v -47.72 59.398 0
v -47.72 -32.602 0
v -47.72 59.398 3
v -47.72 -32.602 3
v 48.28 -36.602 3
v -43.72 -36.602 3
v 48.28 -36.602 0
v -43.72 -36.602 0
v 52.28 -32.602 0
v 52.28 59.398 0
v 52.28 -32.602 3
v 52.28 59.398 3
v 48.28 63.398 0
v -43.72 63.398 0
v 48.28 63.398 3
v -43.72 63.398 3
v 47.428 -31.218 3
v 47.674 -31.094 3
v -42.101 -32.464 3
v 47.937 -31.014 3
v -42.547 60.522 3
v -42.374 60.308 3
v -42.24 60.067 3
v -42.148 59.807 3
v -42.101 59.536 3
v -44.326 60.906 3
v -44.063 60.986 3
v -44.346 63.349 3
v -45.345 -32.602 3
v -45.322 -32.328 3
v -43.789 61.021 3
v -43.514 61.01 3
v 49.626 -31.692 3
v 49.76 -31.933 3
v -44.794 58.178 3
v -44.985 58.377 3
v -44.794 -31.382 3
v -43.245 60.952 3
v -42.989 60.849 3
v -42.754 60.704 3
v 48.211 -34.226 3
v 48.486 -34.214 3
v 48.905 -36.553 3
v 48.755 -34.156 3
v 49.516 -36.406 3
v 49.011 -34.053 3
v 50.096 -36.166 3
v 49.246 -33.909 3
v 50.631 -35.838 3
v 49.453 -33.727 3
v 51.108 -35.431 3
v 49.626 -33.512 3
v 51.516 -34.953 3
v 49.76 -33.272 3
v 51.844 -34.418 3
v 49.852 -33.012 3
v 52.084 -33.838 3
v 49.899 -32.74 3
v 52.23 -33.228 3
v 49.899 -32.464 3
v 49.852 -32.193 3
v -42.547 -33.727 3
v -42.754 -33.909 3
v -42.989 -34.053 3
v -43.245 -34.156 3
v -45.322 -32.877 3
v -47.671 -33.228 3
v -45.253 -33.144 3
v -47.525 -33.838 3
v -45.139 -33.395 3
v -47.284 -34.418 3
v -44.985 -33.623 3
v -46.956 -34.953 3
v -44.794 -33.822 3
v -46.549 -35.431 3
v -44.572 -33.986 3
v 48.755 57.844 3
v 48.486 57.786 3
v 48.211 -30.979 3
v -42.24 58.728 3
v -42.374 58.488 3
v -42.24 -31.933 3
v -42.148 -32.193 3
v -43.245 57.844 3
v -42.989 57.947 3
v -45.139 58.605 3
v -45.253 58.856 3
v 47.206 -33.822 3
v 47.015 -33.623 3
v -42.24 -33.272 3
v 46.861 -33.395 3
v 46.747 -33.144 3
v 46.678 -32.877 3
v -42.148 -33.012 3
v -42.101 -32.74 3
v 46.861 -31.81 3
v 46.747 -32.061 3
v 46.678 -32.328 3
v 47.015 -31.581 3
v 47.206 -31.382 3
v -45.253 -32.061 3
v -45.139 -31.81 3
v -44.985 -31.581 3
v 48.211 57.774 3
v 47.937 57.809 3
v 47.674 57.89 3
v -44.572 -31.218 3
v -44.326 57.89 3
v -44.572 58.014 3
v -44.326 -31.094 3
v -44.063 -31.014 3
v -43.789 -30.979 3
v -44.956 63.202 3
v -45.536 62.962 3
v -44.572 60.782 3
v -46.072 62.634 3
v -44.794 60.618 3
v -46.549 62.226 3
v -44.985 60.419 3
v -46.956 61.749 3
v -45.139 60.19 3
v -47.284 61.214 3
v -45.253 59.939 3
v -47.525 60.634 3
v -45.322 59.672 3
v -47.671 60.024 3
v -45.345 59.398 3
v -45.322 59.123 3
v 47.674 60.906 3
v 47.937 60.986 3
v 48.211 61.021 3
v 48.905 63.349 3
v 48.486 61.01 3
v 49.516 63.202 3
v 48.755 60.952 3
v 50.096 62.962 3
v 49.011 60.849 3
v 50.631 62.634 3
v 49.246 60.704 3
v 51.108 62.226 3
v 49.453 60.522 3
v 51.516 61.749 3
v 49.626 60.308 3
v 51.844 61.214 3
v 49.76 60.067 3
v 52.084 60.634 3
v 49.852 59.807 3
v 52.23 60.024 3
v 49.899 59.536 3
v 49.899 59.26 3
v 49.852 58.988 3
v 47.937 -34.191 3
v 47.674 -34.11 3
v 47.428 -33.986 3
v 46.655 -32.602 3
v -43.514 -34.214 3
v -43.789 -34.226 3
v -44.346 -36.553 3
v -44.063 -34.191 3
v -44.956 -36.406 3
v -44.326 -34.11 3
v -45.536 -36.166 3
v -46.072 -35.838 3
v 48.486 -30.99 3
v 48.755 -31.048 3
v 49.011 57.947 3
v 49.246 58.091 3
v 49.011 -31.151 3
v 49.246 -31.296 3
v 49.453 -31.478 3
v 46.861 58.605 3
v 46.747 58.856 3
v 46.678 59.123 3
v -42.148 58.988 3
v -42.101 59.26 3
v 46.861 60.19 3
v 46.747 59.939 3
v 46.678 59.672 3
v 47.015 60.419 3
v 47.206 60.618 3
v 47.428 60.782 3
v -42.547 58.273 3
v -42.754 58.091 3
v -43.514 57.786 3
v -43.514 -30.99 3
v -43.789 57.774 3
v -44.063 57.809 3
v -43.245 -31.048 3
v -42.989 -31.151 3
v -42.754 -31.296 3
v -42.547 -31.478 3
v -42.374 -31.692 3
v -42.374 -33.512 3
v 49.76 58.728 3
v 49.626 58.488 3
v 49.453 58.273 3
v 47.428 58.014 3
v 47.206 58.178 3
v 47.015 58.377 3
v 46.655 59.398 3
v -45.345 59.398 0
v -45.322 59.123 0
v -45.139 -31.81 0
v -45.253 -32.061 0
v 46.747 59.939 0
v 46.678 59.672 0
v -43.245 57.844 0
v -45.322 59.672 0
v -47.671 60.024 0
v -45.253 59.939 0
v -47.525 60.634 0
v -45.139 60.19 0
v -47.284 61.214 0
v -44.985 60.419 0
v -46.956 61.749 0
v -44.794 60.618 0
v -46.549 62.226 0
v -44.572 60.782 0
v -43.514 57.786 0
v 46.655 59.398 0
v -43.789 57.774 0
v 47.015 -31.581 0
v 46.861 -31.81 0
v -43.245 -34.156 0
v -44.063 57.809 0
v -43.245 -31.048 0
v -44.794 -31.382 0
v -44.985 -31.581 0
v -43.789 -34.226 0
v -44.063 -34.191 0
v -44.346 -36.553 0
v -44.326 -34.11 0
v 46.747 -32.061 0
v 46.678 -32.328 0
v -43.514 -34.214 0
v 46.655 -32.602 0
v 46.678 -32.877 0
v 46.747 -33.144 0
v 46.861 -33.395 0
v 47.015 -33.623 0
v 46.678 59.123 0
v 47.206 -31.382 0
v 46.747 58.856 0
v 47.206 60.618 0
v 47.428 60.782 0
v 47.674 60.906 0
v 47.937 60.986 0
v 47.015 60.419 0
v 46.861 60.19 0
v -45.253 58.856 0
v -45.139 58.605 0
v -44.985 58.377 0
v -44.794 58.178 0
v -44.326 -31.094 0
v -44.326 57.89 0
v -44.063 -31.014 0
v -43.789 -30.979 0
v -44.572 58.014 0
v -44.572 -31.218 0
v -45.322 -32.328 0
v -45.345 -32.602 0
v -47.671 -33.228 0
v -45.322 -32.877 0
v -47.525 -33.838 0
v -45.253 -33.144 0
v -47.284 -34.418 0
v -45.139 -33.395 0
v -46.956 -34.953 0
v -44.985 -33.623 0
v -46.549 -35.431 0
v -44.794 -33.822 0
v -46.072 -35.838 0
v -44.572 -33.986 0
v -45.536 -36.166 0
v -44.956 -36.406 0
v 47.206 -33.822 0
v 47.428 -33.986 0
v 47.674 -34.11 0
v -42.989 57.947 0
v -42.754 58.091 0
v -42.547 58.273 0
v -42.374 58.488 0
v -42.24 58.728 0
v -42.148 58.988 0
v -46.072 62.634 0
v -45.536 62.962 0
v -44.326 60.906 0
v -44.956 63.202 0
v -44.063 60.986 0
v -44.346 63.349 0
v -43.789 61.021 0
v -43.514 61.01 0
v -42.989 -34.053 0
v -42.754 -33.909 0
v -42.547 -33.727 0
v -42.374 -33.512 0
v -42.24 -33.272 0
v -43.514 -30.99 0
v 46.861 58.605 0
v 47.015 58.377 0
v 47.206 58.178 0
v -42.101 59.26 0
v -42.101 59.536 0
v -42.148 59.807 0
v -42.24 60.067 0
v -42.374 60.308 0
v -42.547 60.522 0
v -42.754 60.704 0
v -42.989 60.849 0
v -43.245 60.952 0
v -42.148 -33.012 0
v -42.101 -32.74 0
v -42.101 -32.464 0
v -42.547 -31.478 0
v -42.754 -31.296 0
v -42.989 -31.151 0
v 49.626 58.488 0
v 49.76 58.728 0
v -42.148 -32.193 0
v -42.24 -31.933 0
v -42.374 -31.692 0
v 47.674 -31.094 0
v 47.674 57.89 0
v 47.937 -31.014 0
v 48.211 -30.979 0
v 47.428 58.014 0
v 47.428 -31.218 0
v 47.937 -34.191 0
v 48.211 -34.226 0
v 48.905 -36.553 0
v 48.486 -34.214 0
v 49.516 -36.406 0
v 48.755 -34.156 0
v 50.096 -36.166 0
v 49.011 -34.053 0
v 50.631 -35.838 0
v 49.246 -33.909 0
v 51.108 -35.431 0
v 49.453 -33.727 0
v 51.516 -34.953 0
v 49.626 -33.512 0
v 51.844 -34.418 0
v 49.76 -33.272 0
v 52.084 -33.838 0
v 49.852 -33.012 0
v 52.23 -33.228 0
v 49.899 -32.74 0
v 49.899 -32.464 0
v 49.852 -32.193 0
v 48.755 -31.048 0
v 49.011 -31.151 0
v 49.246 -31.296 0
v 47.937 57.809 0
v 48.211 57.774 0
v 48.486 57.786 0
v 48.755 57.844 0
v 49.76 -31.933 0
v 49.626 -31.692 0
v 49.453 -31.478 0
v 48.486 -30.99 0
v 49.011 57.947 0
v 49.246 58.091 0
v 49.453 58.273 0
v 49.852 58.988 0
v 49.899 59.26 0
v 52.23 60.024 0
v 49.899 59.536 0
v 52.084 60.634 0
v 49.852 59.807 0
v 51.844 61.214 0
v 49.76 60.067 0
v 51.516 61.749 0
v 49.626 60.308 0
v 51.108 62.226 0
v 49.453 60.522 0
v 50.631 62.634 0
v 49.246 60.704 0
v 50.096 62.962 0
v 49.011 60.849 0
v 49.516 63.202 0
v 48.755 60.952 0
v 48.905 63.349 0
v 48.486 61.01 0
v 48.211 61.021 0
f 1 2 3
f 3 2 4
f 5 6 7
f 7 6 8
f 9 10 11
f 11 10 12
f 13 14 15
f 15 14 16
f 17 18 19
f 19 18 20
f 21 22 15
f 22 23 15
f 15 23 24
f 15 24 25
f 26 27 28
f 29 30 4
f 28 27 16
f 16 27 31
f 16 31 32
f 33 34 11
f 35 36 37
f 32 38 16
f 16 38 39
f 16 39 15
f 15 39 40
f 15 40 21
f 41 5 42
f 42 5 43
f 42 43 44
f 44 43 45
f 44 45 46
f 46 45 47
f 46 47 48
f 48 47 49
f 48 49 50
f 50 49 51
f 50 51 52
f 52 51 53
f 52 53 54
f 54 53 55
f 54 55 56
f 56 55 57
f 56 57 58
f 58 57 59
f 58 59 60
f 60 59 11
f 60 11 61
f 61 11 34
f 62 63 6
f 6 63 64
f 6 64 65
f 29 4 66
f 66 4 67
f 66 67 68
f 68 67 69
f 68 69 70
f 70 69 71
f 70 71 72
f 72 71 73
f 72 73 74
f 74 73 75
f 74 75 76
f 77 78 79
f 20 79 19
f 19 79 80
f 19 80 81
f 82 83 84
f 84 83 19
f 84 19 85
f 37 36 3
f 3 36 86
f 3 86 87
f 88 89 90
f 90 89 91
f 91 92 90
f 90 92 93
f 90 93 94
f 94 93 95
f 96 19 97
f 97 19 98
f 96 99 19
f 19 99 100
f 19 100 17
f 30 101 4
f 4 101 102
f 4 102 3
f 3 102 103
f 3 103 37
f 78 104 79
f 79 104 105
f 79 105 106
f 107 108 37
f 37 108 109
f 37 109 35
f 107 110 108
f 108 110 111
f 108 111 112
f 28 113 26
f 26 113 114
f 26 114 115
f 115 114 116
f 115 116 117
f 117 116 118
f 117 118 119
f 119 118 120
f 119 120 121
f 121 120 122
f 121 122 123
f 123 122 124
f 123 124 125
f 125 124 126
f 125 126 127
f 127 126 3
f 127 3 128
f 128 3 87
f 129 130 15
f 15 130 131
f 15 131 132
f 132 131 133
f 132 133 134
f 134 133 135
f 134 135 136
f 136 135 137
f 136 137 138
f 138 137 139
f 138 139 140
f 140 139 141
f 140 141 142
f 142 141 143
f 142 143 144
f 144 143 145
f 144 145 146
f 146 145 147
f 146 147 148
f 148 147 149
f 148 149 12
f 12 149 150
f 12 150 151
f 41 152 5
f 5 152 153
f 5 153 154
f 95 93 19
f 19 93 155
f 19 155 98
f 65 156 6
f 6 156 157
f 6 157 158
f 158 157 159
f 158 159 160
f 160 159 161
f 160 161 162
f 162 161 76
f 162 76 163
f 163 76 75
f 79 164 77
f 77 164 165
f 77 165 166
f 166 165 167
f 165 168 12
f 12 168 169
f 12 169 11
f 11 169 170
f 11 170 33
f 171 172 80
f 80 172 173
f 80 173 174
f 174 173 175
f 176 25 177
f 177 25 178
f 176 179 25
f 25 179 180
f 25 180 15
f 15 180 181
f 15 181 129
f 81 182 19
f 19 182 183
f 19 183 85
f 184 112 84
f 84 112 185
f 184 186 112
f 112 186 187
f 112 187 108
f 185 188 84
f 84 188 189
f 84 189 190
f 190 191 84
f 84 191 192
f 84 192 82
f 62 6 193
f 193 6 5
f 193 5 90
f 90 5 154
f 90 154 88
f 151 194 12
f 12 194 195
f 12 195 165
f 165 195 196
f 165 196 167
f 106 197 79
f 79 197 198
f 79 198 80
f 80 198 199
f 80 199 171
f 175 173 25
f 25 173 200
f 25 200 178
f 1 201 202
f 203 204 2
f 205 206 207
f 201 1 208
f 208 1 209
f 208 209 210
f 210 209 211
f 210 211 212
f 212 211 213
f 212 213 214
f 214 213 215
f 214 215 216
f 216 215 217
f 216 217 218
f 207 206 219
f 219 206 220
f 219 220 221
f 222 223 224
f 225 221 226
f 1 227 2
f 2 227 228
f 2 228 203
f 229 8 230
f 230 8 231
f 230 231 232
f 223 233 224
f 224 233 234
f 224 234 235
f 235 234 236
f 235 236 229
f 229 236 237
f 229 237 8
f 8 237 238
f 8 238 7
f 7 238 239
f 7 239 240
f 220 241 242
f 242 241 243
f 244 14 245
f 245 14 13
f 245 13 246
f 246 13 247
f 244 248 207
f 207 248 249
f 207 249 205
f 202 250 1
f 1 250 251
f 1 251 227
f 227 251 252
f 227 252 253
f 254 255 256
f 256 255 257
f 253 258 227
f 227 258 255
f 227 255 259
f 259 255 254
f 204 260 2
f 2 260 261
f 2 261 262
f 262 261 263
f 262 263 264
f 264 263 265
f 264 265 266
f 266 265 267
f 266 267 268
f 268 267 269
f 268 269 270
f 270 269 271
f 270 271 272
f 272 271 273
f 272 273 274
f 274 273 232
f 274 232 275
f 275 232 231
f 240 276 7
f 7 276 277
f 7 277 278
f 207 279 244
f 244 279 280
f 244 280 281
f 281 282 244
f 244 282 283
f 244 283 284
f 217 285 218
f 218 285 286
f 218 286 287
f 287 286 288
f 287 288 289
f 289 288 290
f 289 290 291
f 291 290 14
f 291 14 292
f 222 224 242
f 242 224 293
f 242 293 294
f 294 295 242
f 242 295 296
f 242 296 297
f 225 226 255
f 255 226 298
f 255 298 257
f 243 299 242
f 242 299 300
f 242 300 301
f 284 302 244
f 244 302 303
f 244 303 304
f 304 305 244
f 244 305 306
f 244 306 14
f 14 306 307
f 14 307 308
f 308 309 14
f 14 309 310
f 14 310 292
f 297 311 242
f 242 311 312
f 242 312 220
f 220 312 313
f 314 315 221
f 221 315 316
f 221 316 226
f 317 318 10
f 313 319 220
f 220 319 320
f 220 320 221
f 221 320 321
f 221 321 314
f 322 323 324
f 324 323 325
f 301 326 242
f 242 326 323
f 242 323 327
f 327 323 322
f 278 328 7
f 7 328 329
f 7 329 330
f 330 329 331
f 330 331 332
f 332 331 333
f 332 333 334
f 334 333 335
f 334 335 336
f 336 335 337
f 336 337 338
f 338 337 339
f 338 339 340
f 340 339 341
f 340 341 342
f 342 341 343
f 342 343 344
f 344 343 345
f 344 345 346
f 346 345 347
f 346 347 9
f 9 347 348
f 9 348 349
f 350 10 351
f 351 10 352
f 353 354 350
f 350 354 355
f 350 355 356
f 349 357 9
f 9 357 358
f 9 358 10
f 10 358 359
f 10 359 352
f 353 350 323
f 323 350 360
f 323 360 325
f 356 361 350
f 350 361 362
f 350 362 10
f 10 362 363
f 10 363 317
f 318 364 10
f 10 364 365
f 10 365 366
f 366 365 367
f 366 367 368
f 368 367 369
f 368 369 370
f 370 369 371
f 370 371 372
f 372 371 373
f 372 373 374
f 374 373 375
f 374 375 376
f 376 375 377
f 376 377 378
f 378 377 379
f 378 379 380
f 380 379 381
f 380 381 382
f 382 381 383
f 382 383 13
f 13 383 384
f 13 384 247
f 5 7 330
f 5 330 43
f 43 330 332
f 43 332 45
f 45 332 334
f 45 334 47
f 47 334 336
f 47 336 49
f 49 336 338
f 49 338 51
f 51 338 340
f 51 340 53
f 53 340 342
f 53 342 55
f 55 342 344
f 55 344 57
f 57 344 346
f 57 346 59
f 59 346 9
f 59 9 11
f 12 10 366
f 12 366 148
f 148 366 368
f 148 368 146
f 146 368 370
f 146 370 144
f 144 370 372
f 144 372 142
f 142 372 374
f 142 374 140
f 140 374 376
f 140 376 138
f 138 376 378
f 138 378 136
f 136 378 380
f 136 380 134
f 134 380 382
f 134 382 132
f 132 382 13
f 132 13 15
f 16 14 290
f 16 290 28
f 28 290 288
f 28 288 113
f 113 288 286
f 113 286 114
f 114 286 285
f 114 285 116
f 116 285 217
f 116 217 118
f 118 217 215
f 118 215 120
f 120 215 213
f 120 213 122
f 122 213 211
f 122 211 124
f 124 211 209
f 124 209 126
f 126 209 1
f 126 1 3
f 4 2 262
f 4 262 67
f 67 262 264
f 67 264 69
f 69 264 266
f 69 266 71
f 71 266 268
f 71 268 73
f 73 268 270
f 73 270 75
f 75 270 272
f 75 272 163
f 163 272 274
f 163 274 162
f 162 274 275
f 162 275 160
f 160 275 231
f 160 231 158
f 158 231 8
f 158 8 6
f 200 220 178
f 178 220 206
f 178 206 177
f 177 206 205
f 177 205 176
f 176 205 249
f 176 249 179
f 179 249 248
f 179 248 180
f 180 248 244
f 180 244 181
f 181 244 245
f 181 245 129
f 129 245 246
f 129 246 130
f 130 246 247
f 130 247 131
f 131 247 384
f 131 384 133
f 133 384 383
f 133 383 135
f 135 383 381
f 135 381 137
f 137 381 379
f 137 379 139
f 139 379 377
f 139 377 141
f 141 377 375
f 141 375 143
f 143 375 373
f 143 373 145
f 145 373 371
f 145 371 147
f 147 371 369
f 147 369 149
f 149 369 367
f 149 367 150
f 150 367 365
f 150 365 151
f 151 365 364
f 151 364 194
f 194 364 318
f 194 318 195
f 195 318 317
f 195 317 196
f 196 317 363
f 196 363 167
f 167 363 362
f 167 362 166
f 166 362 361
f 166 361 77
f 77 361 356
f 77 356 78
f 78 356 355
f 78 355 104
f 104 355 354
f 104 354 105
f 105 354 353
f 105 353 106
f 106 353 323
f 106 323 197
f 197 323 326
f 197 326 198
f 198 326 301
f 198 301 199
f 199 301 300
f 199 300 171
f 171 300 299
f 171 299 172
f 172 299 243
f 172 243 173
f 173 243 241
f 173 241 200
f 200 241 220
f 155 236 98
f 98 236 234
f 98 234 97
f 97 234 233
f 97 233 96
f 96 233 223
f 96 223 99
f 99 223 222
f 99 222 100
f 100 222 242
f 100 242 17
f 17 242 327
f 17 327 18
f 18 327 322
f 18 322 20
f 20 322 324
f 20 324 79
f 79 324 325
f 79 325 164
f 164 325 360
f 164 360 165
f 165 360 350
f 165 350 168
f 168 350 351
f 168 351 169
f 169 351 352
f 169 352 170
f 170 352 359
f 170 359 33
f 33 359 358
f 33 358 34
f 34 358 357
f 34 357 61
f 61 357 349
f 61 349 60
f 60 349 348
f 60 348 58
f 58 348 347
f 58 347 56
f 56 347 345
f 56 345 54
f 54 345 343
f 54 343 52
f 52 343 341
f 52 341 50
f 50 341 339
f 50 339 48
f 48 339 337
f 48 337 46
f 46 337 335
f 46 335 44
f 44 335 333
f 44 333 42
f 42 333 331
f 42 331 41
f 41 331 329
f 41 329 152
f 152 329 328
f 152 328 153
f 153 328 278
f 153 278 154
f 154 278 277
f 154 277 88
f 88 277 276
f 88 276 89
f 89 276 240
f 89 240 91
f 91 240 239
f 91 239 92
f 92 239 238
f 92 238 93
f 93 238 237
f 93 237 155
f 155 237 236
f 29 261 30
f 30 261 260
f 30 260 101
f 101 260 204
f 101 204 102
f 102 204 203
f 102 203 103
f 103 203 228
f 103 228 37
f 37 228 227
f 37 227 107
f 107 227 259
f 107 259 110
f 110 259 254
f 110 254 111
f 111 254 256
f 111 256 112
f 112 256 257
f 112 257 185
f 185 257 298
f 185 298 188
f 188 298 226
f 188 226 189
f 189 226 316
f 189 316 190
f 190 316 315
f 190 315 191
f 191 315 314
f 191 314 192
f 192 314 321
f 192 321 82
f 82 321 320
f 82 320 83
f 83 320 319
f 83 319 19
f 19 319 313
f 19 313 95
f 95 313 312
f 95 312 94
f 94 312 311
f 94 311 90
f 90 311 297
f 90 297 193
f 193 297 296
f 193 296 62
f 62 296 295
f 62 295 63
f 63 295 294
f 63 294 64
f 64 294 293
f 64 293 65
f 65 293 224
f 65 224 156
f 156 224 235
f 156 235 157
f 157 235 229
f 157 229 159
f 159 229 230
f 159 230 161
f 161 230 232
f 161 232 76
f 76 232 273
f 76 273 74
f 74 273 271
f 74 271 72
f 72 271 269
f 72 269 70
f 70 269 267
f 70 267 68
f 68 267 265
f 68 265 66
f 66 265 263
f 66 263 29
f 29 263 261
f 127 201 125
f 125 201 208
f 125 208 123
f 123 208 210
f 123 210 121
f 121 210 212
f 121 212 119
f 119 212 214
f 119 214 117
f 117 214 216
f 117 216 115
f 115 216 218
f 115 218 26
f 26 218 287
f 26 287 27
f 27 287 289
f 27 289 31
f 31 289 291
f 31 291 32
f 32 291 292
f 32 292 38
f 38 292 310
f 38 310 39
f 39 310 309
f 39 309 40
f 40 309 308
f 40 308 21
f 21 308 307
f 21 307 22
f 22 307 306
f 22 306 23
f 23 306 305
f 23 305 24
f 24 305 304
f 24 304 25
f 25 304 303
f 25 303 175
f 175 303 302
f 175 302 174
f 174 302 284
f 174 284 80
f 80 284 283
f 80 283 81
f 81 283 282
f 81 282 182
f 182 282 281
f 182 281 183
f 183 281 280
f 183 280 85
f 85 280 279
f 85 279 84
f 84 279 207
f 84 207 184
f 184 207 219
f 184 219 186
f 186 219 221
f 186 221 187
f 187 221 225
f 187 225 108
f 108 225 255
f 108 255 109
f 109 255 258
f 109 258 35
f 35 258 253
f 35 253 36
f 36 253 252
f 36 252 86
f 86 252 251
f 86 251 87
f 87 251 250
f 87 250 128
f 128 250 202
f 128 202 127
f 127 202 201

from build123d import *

# Parameters (mm, degrees)
IZIM1_W                     = 100
IZIM1_H                     = 100
Y_KSEKLIK_EKSTR_ZYON1_DEPTH = 3
RADYUS1_R                   = 4
IZIM12_R                    = 1.625
KES_EKSTR_ZYON7_DEPTH       = 83.228005541


with BuildPart() as part:
    # Çizim1 → Yükseklik-Ekstrüzyon1 (new body)
    with BuildSketch(Plane.XY):
        with Locations((2.279635258, 13.397828294)):
            Rectangle(IZIM1_W, IZIM1_H)
    extrude(amount=Y_KSEKLIK_EKSTR_ZYON1_DEPTH)

    # Radyus1
    radyus1_edges = [part.edges().sort_by_distance(p)[0] for p in [
        (-47.720364742, 63.397828294, 1.5),
        (52.279635258, 63.397828294, 1.5),
        (52.279635258, -36.602171706, 1.5),
        (-47.720364742, -36.602171706, 1.5),
    ]]
    fillet(radyus1_edges, radius=RADYUS1_R)

    # Çizim12 → Kes-Ekstrüzyon7 (cut, through all)
    with BuildSketch(Plane(origin=(0, 0, 0), x_dir=(-1, 0, 0), z_dir=(0, 0, -1))):
        with Locations((-48.279635258, 59.397828294)):
            Circle(IZIM12_R)
        with Locations((43.720364742, 59.397828294)):
            Circle(IZIM12_R)
        with Locations((43.720364742, -32.602171706)):
            Circle(IZIM12_R)
        with Locations((-48.279635258, -32.602171706)):
            Circle(IZIM12_R)
    extrude(amount=-KES_EKSTR_ZYON7_DEPTH, mode=Mode.SUBTRACT)


solid = part.part
